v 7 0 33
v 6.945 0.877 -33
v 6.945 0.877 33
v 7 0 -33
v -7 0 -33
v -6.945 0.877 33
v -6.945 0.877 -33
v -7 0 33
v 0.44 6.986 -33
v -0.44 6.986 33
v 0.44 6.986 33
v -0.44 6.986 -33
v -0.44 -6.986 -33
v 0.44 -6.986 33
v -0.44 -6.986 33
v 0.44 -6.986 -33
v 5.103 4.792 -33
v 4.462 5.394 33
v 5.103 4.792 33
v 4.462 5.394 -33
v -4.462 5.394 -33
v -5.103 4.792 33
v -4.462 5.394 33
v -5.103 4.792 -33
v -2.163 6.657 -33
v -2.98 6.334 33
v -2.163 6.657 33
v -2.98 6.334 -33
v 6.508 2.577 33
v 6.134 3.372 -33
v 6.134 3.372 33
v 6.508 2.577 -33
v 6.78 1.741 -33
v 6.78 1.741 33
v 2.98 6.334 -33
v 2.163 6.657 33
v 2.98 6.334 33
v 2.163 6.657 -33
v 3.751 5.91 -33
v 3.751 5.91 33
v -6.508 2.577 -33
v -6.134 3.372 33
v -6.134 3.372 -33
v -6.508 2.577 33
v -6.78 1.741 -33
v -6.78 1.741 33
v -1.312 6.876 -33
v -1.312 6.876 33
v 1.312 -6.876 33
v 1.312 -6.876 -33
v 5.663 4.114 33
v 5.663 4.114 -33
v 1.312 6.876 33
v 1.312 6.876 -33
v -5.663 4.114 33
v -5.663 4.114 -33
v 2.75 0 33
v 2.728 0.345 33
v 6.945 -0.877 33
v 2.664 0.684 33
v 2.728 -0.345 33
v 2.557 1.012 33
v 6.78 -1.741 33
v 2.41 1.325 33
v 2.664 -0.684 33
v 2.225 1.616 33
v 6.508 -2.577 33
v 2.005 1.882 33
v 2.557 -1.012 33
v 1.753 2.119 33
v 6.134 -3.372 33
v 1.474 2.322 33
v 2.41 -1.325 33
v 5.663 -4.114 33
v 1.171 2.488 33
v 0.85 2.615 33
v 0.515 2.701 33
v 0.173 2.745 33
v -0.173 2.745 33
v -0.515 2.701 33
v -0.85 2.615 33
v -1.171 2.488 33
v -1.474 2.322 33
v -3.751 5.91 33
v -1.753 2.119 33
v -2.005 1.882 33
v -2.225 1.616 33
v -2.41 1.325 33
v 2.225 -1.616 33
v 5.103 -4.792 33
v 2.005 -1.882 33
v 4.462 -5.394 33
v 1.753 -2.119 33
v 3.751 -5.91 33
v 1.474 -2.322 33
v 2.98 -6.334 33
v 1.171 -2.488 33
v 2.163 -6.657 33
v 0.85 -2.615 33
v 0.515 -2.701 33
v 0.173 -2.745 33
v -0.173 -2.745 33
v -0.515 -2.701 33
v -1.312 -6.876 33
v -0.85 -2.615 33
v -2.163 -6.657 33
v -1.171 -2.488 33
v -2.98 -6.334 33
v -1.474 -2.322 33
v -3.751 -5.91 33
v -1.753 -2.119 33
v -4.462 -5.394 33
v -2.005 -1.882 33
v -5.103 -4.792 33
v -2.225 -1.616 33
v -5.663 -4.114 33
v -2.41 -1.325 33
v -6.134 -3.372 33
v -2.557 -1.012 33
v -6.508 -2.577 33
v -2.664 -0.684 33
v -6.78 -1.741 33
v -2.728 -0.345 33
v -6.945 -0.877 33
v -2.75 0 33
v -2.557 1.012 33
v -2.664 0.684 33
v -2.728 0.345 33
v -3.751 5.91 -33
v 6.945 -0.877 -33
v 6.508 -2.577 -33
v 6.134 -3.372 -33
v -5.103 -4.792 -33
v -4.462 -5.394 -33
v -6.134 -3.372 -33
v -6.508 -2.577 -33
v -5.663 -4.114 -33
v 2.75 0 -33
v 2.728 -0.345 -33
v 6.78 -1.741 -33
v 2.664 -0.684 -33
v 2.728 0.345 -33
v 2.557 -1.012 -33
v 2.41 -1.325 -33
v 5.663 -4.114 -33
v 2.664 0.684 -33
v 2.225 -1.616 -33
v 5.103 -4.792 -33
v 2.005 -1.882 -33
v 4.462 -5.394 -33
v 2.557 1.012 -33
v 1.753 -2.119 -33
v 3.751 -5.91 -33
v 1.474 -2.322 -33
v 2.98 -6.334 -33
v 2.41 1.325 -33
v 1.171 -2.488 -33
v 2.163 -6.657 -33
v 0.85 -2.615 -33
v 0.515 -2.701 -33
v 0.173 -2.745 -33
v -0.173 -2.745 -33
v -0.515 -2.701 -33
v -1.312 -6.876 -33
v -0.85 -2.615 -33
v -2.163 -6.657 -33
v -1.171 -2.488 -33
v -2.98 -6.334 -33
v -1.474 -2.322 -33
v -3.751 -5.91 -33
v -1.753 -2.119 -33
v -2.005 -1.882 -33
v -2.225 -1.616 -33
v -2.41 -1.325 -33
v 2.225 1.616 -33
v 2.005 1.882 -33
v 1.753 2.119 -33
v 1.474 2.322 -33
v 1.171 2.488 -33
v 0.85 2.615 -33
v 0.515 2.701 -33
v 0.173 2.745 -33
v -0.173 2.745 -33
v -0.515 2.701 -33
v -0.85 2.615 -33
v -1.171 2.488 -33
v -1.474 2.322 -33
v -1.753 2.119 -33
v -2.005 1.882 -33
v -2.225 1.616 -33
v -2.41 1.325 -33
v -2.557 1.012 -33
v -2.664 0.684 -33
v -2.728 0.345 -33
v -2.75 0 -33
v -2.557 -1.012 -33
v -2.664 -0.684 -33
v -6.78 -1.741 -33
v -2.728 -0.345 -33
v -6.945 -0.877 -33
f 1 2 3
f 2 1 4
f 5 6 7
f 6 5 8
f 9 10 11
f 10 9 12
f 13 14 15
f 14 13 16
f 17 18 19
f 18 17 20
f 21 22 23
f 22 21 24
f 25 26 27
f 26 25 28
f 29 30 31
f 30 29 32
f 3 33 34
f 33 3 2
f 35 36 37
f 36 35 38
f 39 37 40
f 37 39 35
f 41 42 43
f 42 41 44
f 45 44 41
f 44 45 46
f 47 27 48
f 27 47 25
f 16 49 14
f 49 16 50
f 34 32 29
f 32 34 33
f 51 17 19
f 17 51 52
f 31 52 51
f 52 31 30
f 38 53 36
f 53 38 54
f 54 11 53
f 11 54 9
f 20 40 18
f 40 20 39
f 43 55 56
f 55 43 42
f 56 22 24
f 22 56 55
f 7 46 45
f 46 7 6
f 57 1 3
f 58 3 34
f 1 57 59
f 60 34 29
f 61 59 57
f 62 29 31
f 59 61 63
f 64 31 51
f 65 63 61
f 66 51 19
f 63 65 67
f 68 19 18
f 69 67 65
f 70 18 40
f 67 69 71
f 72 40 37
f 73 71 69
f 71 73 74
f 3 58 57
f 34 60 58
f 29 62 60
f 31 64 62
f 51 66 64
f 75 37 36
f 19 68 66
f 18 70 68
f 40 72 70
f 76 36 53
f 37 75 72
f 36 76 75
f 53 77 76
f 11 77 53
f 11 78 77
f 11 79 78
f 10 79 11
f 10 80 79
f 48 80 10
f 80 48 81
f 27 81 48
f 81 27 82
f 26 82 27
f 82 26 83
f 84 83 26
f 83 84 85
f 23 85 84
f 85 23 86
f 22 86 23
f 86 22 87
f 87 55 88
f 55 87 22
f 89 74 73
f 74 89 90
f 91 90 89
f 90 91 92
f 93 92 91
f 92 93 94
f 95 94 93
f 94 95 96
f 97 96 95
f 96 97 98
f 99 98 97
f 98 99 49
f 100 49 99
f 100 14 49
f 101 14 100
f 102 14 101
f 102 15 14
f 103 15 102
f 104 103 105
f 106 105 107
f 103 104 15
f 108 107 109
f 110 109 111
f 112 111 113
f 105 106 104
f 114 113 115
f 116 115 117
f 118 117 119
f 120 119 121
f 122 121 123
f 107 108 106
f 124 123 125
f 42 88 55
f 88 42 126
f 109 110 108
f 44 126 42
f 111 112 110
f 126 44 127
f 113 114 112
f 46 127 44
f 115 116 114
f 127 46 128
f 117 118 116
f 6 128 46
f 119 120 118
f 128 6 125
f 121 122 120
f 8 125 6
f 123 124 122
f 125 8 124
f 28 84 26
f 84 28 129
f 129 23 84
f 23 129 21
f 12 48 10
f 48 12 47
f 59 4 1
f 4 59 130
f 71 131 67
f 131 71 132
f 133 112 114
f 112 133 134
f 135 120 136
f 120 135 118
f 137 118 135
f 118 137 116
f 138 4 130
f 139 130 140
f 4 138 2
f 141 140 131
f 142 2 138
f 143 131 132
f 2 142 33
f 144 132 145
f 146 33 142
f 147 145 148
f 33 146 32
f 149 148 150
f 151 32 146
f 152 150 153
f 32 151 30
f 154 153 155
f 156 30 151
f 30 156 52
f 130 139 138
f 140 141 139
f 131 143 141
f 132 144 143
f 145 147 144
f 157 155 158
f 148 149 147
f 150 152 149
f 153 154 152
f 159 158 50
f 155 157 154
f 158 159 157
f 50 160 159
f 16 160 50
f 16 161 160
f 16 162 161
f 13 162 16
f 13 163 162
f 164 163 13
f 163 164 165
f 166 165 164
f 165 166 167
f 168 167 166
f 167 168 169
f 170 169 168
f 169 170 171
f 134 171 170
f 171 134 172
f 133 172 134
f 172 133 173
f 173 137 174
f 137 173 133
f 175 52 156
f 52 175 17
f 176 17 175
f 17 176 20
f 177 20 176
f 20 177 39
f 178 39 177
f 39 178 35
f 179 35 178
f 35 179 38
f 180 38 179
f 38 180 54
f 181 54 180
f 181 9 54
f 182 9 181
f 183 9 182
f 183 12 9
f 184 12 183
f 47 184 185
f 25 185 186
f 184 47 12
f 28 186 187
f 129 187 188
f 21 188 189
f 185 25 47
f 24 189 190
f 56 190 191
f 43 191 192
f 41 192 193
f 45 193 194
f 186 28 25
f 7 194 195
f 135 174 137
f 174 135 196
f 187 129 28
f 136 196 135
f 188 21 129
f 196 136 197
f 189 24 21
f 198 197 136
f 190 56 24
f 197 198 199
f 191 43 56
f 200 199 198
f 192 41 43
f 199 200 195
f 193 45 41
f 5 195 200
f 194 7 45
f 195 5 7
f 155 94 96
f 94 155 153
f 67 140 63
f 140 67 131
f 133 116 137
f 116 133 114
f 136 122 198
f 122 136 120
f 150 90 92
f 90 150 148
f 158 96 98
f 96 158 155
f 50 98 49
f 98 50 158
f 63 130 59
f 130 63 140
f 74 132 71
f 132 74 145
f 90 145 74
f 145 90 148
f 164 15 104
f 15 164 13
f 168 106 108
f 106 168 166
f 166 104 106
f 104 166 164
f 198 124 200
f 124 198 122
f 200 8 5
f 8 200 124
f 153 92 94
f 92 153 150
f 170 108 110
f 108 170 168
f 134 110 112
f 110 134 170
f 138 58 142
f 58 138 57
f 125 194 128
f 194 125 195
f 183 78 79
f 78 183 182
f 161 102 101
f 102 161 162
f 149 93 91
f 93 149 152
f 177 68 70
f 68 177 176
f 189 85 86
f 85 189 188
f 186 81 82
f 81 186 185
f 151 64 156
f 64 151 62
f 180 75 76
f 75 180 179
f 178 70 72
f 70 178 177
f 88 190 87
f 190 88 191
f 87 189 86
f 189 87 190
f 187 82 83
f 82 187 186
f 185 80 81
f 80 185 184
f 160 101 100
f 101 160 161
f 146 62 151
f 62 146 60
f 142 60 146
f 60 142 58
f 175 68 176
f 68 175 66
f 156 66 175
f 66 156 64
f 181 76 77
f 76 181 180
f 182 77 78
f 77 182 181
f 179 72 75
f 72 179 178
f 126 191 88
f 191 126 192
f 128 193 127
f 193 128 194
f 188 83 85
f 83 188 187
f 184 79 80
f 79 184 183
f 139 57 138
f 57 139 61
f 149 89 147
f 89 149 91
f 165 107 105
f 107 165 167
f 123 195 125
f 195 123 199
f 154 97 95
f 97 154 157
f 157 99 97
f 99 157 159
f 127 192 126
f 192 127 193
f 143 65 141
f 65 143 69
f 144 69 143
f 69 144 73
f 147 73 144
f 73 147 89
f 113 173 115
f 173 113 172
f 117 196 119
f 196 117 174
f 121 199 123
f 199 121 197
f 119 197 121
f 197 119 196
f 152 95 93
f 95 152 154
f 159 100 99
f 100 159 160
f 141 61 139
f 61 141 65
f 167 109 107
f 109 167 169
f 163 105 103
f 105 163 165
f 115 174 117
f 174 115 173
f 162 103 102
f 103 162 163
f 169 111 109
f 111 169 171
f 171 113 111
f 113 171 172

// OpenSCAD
$fn = 50;


difference() {
	union() {
		translate(v = [0, 0, -33.0000000000]) {
			cylinder(h = 66, r = 7.0000000000);
		}
	}
	union() {
		translate(v = [0, 0, -100.0000000000]) {
			cylinder(h = 200, r = 2.7500000000);
		}
	}
}
